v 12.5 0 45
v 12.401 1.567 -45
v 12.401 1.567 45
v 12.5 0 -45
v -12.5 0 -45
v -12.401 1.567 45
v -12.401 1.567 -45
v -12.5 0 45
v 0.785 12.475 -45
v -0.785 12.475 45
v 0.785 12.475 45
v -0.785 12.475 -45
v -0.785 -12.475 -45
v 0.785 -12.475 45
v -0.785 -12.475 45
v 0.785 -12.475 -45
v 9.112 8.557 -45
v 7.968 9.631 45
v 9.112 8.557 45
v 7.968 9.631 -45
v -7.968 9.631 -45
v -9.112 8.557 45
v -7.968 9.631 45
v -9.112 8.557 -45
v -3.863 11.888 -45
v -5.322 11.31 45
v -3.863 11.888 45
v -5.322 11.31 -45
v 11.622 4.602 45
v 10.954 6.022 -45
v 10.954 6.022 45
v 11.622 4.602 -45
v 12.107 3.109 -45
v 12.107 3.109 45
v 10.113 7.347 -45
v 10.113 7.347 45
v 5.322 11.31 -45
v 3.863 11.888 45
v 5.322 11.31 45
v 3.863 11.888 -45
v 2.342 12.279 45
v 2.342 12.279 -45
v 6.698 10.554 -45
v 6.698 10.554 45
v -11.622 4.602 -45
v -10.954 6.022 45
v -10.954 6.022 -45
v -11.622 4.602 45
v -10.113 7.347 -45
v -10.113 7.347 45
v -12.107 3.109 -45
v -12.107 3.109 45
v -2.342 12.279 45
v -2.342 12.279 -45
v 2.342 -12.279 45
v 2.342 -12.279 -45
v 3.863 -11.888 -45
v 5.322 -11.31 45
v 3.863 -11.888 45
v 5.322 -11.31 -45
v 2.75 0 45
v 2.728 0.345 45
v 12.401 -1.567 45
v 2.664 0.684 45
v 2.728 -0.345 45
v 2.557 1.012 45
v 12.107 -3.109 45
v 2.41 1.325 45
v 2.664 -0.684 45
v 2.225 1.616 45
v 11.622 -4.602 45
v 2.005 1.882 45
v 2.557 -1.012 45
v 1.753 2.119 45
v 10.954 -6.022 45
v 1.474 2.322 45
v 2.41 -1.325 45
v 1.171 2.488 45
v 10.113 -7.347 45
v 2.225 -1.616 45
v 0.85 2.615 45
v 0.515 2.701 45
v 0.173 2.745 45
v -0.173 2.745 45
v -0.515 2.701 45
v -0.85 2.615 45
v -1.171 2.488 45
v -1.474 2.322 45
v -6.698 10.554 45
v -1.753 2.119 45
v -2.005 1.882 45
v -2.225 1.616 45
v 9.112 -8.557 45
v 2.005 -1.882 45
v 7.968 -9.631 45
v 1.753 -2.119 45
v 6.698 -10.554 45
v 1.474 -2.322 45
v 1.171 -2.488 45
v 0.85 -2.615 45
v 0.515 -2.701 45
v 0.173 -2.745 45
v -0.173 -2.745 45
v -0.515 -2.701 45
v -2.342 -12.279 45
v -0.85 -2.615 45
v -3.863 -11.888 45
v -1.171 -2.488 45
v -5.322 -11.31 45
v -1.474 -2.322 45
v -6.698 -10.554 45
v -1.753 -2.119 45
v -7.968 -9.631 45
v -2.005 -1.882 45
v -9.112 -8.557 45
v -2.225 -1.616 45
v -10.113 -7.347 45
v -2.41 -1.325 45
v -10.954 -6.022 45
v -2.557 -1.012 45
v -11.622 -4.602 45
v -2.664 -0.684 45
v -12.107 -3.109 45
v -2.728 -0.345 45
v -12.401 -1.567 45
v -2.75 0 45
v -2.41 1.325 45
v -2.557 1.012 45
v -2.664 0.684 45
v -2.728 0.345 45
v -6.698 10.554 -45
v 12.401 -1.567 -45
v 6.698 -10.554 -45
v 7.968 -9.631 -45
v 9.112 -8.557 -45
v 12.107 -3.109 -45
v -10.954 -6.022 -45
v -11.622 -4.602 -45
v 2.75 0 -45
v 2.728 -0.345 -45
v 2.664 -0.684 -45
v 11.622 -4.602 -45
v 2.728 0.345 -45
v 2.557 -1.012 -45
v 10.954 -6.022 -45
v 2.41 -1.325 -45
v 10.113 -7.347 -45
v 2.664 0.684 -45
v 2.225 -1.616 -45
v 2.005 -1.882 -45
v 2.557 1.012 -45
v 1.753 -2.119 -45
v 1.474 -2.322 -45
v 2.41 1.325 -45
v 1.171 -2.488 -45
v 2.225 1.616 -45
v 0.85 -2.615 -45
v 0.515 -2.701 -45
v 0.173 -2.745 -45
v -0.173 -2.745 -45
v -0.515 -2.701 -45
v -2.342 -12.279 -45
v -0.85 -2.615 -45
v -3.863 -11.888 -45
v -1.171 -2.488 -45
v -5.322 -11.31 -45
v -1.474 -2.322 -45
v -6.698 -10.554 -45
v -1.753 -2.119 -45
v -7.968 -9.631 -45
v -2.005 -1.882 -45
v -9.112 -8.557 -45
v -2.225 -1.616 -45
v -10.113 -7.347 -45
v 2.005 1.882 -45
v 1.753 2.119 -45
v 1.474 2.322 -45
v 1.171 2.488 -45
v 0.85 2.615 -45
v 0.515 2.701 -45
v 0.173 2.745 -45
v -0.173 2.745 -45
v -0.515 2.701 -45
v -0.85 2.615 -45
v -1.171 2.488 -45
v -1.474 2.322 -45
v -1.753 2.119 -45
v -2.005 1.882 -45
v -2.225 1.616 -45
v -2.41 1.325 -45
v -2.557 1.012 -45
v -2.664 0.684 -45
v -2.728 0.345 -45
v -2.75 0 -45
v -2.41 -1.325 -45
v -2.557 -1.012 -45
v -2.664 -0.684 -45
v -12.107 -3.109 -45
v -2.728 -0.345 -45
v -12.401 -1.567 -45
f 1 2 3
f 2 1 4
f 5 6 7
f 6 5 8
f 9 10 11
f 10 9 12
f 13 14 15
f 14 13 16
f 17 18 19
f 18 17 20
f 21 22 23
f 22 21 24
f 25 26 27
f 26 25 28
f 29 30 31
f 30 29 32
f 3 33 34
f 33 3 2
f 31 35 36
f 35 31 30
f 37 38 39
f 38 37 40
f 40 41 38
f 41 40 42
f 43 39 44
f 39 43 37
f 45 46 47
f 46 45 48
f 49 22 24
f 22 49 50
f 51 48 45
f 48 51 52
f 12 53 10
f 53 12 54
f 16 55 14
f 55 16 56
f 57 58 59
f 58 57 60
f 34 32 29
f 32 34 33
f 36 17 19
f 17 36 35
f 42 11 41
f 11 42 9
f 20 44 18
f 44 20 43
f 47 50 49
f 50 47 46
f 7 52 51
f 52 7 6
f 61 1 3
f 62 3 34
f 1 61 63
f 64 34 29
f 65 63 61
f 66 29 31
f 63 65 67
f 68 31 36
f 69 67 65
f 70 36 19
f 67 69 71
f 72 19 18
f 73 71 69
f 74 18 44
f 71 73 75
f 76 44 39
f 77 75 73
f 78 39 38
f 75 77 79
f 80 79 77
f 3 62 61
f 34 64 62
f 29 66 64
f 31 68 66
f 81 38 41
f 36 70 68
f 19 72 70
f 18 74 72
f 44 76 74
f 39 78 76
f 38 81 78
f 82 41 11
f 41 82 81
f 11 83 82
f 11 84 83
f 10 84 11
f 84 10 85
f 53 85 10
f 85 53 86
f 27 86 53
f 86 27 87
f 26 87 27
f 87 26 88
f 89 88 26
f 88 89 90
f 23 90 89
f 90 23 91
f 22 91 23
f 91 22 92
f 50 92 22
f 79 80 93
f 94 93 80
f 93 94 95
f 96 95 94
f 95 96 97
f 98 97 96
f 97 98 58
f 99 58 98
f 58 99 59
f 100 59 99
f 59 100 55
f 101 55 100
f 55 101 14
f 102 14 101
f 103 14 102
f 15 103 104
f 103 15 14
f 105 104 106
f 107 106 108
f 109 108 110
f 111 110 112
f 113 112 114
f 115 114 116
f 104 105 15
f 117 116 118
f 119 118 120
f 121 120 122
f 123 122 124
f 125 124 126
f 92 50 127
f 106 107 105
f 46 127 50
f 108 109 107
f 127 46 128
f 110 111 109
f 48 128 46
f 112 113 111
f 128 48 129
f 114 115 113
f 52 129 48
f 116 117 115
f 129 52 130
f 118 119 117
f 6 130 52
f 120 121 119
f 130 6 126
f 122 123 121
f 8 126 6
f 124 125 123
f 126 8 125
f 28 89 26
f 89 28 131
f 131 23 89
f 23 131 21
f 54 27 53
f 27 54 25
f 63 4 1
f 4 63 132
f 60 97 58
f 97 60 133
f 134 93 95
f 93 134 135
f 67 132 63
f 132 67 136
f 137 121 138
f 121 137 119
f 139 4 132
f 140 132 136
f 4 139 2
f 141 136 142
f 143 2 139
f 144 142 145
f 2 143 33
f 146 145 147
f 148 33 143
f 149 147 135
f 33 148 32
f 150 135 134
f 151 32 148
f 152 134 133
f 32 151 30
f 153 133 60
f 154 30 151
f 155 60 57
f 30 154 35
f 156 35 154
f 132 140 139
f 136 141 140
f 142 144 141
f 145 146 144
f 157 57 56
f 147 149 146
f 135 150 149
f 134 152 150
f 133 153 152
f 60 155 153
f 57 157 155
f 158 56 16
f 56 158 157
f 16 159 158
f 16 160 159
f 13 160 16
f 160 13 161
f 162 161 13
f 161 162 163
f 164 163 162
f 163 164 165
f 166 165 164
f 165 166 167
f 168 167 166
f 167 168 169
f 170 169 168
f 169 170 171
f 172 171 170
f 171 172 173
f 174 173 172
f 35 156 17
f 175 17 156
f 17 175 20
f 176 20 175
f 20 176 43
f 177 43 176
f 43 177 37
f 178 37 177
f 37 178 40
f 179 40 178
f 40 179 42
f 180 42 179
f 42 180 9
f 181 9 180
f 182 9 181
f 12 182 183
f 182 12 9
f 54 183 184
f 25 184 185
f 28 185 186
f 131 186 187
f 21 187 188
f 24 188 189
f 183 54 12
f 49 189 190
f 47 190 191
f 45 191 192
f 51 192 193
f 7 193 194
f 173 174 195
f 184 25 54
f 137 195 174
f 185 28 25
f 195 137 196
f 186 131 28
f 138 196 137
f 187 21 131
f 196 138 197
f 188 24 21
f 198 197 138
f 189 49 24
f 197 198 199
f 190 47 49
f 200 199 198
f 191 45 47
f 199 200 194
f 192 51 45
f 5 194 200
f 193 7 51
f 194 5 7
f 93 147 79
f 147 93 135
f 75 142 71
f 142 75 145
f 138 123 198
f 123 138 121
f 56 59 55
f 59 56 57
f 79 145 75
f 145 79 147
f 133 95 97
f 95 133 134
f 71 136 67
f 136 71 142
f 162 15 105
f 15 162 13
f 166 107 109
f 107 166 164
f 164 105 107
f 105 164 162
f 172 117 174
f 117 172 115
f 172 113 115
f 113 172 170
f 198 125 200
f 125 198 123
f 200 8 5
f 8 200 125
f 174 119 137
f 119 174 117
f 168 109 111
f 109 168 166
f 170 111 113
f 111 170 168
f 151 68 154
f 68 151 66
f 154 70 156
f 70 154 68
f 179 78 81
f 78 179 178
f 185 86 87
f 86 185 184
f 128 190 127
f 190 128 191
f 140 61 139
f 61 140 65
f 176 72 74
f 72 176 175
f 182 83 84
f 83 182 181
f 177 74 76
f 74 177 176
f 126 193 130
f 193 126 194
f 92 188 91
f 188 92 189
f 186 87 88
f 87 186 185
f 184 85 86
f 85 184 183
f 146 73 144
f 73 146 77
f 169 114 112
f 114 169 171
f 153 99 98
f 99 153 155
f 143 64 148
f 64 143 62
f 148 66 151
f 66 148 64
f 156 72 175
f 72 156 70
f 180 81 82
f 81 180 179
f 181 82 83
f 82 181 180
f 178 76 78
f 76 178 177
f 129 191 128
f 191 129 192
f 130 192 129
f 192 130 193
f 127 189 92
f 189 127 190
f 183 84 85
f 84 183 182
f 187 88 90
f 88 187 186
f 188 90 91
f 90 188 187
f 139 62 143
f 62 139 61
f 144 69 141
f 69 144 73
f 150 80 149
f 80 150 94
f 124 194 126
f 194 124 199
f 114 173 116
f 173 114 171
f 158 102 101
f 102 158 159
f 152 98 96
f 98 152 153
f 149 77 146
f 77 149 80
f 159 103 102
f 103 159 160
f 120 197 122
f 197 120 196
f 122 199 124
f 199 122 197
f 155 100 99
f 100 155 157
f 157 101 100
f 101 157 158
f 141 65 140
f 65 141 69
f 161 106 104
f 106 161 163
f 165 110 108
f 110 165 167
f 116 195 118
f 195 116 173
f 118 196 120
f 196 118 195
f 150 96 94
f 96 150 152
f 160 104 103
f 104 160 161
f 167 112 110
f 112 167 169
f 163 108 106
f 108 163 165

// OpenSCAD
$fn = 50;


difference() {
	union() {
		translate(v = [0, 0, -45.0000000000]) {
			cylinder(h = 90, r = 12.5000000000);
		}
	}
	union() {
		translate(v = [0, 0, -100.0000000000]) {
			cylinder(h = 200, r = 2.7500000000);
		}
	}
}
